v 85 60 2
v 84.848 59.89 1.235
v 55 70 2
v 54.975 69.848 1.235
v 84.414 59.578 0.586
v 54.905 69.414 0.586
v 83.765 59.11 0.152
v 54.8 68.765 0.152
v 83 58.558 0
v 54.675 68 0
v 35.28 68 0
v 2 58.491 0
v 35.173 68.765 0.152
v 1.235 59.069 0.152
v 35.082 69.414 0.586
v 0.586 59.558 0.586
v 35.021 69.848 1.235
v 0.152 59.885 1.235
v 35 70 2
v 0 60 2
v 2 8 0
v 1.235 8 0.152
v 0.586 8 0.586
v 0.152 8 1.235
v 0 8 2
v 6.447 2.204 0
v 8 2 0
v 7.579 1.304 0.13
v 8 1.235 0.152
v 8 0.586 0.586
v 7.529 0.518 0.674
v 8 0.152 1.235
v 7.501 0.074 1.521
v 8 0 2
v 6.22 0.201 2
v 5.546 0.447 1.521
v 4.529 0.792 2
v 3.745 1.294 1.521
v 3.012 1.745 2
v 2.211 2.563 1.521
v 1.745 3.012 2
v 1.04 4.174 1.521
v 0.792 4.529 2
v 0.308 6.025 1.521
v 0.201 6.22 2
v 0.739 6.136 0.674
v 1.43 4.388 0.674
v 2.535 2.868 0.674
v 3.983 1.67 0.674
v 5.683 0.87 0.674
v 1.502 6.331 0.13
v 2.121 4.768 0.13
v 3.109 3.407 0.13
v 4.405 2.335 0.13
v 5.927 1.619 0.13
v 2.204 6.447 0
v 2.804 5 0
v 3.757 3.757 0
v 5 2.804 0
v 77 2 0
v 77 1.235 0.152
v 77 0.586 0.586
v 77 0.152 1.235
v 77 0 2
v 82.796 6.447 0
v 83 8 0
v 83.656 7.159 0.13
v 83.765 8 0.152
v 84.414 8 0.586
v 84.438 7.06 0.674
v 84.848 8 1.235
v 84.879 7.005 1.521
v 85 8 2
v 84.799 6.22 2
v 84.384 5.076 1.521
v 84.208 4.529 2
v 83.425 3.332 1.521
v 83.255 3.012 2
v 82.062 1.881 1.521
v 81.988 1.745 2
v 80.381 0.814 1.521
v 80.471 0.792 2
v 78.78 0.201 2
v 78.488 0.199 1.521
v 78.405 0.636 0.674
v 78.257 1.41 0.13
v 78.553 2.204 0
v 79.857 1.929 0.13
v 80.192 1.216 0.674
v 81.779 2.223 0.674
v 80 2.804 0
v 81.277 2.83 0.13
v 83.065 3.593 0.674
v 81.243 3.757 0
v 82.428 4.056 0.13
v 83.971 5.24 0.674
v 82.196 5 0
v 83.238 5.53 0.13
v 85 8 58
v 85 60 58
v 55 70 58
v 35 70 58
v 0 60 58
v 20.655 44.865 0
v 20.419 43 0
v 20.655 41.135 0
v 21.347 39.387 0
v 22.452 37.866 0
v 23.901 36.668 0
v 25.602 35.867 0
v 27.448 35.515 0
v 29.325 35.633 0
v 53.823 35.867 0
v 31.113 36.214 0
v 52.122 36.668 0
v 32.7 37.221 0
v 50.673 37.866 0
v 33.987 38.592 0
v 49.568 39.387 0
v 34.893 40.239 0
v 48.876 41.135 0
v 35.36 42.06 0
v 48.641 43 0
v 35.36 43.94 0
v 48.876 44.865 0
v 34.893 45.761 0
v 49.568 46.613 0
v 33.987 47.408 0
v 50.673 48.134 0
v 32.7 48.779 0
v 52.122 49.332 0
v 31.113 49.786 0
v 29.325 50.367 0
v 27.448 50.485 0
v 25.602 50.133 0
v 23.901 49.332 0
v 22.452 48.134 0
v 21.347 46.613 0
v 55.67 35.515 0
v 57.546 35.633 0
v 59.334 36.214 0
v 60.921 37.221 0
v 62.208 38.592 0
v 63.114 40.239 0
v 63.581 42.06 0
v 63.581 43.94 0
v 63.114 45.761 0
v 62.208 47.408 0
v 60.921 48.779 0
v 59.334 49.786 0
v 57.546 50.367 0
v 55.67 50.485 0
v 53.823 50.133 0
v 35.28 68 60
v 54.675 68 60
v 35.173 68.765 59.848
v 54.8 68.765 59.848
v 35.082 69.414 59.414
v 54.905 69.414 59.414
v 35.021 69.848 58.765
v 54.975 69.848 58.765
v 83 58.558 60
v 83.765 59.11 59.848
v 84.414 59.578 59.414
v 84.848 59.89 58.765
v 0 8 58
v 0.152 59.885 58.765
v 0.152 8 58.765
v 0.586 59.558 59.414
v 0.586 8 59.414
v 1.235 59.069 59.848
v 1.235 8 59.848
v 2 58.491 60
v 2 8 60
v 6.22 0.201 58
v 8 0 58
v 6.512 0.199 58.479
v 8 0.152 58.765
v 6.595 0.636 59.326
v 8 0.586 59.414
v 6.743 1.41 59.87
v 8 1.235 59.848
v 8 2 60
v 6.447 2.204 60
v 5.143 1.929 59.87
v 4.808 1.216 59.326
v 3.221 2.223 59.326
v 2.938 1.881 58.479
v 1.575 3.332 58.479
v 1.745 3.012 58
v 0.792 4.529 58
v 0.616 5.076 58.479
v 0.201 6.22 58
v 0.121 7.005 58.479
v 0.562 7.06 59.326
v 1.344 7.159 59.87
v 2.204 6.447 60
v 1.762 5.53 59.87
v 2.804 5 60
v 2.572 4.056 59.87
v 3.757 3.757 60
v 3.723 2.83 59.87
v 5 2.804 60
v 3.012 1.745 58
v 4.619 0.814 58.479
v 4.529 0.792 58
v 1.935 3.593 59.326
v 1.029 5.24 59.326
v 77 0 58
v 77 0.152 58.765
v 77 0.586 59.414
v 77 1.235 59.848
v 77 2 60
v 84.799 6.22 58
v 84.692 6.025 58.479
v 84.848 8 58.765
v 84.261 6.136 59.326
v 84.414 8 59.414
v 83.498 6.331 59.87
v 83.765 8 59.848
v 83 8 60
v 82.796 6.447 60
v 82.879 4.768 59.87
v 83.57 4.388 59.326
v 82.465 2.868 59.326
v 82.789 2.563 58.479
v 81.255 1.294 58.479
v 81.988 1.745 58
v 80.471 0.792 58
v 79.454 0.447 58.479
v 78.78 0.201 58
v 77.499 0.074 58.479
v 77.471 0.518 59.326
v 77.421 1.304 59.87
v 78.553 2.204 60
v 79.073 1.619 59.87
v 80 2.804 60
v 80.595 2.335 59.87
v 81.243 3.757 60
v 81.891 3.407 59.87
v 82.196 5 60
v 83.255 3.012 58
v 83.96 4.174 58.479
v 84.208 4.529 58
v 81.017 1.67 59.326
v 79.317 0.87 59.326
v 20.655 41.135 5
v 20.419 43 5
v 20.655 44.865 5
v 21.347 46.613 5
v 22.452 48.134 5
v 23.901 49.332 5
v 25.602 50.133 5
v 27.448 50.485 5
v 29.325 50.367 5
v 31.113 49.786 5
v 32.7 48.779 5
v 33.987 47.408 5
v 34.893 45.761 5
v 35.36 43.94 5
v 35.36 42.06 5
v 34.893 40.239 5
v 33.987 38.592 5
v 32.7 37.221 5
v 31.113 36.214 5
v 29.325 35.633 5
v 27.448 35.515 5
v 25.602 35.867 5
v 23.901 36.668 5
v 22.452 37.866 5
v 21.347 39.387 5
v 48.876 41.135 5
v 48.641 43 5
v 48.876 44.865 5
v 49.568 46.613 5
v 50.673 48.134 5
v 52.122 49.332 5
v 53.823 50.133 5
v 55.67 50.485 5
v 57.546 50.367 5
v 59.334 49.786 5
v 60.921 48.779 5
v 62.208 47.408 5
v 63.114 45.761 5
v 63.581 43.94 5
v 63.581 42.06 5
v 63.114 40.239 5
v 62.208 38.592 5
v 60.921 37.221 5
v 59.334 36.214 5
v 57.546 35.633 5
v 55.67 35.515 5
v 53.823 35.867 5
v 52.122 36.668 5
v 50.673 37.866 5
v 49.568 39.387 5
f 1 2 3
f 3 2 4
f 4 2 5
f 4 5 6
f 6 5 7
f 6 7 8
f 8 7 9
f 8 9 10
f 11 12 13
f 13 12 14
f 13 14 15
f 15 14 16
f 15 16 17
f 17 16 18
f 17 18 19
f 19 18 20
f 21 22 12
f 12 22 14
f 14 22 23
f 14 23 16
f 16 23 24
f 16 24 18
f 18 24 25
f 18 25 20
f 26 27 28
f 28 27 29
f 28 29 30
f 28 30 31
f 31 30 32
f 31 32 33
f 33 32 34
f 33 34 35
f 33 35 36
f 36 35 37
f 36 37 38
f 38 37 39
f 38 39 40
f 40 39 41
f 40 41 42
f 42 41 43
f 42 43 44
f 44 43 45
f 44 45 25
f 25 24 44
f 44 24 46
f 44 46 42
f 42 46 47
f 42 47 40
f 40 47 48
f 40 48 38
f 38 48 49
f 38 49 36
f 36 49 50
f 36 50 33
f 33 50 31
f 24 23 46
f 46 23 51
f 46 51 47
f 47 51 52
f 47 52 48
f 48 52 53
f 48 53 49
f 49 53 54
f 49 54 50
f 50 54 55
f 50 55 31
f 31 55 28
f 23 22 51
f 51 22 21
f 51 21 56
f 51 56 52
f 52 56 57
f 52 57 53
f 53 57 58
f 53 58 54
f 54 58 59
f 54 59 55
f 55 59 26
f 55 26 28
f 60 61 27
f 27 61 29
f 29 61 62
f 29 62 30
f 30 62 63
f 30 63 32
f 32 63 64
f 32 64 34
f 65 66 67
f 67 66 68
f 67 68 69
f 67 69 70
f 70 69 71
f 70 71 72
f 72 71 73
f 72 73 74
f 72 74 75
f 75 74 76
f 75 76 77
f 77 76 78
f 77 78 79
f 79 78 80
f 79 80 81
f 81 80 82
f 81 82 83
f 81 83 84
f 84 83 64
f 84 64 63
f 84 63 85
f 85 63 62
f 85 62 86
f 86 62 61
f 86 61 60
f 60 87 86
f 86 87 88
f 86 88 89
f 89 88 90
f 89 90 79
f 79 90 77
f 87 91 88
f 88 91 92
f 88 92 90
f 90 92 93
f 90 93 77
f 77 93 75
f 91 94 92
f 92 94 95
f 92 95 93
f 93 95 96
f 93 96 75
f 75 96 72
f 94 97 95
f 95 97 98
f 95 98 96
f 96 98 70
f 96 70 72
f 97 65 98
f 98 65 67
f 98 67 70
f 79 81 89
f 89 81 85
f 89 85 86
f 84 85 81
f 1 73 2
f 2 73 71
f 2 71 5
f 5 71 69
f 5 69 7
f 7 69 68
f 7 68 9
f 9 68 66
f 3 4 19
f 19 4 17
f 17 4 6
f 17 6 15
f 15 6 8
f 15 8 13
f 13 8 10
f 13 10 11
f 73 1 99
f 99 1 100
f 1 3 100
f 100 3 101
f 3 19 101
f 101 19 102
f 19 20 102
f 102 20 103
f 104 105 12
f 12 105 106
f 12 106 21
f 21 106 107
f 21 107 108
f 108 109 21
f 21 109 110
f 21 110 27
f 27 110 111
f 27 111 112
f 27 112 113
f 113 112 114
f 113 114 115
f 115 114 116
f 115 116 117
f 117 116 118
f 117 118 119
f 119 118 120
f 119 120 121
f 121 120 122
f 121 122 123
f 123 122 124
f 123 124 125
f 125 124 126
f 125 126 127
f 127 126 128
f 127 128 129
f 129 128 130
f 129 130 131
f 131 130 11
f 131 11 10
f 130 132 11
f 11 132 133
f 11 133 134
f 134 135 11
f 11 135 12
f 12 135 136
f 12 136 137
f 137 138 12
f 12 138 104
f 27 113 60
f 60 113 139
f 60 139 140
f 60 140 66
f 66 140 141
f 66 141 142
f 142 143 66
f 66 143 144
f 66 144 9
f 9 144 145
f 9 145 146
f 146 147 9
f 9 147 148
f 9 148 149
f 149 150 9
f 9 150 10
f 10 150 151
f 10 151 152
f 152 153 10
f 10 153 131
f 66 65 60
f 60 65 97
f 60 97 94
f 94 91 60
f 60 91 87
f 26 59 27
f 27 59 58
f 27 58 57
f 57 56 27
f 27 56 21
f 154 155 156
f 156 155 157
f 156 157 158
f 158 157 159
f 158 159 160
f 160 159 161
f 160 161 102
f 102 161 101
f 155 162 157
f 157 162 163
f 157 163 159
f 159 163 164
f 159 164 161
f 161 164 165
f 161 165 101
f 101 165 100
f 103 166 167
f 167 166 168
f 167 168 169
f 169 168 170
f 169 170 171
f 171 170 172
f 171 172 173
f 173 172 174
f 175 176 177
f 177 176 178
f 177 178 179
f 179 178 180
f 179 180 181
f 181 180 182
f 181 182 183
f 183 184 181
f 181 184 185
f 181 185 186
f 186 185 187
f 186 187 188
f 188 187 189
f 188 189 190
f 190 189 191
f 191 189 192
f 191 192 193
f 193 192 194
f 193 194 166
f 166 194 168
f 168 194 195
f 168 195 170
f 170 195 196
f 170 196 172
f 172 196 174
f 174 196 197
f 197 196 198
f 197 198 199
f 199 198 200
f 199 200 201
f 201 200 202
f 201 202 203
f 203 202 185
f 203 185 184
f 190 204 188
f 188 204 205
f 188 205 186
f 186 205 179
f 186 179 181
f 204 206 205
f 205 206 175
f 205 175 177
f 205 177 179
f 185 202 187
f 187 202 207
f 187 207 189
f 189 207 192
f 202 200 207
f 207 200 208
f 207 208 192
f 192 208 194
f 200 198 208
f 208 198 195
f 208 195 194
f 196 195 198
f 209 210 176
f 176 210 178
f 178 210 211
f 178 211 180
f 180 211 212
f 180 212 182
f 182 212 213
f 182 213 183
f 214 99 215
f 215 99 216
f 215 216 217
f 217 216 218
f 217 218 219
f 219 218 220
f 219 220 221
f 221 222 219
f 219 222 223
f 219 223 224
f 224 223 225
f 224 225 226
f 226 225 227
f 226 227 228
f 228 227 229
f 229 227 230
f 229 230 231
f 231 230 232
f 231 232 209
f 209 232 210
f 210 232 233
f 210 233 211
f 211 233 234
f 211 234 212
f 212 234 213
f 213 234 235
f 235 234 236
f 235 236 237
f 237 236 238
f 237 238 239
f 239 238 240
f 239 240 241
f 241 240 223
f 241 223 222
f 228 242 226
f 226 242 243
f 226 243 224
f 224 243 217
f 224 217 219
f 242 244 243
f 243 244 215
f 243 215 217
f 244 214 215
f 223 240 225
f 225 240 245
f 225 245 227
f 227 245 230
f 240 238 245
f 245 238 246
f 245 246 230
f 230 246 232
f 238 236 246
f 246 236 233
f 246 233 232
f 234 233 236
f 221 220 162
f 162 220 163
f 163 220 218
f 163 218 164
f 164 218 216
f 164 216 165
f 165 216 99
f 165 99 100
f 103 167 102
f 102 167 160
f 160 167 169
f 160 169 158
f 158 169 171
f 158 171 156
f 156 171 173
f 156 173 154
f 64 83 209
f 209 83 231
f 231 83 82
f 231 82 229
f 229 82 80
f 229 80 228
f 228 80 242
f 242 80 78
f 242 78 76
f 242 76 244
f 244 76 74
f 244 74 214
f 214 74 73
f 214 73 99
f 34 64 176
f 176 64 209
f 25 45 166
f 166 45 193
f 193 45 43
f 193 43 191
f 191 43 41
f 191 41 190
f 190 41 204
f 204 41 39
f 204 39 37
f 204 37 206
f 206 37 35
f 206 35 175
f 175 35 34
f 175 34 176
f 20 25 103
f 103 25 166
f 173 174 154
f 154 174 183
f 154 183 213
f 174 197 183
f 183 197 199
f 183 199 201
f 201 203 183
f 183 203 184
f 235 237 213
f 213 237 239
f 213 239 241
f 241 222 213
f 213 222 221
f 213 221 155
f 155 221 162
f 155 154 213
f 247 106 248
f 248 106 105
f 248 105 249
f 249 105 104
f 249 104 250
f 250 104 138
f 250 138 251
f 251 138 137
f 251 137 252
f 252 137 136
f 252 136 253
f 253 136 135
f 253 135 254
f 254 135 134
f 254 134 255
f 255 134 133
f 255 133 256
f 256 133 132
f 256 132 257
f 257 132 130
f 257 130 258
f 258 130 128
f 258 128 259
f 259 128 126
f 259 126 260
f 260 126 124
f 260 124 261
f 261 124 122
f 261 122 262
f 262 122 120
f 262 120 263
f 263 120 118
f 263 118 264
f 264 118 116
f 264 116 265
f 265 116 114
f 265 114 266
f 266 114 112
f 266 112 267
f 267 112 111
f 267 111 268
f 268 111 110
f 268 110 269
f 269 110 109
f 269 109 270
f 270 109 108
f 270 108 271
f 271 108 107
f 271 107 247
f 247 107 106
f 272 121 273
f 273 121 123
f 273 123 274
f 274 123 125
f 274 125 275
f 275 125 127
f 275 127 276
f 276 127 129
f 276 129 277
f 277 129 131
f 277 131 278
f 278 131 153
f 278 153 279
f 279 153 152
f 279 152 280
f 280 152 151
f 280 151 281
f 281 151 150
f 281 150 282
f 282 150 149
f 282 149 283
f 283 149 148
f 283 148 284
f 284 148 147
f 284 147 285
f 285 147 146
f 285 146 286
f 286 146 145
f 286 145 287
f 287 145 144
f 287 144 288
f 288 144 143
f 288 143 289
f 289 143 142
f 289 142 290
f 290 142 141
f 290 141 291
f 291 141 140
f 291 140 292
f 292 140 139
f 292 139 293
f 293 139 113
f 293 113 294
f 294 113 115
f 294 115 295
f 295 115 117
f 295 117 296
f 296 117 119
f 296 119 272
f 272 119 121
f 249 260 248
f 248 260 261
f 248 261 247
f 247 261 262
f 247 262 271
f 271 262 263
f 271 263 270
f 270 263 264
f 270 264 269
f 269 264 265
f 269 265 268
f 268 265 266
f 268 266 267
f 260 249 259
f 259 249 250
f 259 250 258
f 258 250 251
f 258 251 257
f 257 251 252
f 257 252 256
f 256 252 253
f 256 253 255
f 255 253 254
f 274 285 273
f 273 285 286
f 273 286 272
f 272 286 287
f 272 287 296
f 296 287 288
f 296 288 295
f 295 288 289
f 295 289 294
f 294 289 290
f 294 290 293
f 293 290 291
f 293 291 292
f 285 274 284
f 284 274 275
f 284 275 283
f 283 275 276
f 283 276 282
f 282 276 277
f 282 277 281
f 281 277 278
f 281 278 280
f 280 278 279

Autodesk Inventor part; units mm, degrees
ref_plane "YZ Plane" through (0, 0, 0) normal (1, 0, 0) x (0, 1, 0)
ref_plane "XZ Plane" through (0, 0, 0) normal (0, 1, 0) x (-1, 0, 0)
ref_plane "XY Plane" through (0, 0, 0) normal (0, 0, 1) x (1, 0, 0)
sketch "Sketch1" plane through (0, 0, 0) normal (0, 0, 1) x (1, 0, 0)
  line L0 (0, 0) -> (85, 0)
  line L1 (85, 0) -> (85, 60)
  line L2 (85, 60) -> (0, 60)
  line L3 (0, 60) -> (0, 0)
  line L4 (0, 60) -> (35, 60)
  line L5 (35, 60) -> (35, 70)
  line L6 (35, 70) -> (55, 70)
  line L7 (55, 70) -> (85, 60)
  line L8 (35, 70) -> (0, 60)
  dimension "d0" = 85
  dimension "d1" = 60
  dimension "d2" = 35
  dimension "d3" = 10
  dimension "d4" = 20
extrude "Extrusion1" add sketch "Sketch1" along normal blind 60
fillet "Fillet1" radius 8 2 edges at (85, 0, 30) (0, 0, 30)
fillet "Fillet2" radius 2 16 edges at (82.6569, 2.3431, 60) (42.5, 0, 60) (2.3431, 2.3431, 60) (0, 34, 60) (85, 34, 60) (70, 65, 60) (45, 70, 60) (17.5, 65, 60) (82.6569, 2.3431, 0) (42.5, 0, 0) (2.3431, 2.3431, 0) (0, 34, 0) (85, 34, 0) (70, 65, 0) (45, 70, 0) (17.5, 65, 0)
sketch "Sketch2" plane through (0, 0, 0) normal (0, 0, -1) x (-1, 0, 0)
  point P0 (0, 0)
sketch "Sketch3" plane through (0, 0, 0) normal (0, 0, -1) x (-1, 0, 0)
  line L0 (-85, 8) -> (-85, 60) projected
  circle A0 centre (-27.9194, 43) radius 7.5
  circle A1 centre (-56.1406, 43) radius 7.5
  point P0 (0, 0)
  dimension "d12" = 15
extrude "Extrusion2" cut sketch "Sketch3" against normal blind 5
properties part number "SCALE HEAD"
